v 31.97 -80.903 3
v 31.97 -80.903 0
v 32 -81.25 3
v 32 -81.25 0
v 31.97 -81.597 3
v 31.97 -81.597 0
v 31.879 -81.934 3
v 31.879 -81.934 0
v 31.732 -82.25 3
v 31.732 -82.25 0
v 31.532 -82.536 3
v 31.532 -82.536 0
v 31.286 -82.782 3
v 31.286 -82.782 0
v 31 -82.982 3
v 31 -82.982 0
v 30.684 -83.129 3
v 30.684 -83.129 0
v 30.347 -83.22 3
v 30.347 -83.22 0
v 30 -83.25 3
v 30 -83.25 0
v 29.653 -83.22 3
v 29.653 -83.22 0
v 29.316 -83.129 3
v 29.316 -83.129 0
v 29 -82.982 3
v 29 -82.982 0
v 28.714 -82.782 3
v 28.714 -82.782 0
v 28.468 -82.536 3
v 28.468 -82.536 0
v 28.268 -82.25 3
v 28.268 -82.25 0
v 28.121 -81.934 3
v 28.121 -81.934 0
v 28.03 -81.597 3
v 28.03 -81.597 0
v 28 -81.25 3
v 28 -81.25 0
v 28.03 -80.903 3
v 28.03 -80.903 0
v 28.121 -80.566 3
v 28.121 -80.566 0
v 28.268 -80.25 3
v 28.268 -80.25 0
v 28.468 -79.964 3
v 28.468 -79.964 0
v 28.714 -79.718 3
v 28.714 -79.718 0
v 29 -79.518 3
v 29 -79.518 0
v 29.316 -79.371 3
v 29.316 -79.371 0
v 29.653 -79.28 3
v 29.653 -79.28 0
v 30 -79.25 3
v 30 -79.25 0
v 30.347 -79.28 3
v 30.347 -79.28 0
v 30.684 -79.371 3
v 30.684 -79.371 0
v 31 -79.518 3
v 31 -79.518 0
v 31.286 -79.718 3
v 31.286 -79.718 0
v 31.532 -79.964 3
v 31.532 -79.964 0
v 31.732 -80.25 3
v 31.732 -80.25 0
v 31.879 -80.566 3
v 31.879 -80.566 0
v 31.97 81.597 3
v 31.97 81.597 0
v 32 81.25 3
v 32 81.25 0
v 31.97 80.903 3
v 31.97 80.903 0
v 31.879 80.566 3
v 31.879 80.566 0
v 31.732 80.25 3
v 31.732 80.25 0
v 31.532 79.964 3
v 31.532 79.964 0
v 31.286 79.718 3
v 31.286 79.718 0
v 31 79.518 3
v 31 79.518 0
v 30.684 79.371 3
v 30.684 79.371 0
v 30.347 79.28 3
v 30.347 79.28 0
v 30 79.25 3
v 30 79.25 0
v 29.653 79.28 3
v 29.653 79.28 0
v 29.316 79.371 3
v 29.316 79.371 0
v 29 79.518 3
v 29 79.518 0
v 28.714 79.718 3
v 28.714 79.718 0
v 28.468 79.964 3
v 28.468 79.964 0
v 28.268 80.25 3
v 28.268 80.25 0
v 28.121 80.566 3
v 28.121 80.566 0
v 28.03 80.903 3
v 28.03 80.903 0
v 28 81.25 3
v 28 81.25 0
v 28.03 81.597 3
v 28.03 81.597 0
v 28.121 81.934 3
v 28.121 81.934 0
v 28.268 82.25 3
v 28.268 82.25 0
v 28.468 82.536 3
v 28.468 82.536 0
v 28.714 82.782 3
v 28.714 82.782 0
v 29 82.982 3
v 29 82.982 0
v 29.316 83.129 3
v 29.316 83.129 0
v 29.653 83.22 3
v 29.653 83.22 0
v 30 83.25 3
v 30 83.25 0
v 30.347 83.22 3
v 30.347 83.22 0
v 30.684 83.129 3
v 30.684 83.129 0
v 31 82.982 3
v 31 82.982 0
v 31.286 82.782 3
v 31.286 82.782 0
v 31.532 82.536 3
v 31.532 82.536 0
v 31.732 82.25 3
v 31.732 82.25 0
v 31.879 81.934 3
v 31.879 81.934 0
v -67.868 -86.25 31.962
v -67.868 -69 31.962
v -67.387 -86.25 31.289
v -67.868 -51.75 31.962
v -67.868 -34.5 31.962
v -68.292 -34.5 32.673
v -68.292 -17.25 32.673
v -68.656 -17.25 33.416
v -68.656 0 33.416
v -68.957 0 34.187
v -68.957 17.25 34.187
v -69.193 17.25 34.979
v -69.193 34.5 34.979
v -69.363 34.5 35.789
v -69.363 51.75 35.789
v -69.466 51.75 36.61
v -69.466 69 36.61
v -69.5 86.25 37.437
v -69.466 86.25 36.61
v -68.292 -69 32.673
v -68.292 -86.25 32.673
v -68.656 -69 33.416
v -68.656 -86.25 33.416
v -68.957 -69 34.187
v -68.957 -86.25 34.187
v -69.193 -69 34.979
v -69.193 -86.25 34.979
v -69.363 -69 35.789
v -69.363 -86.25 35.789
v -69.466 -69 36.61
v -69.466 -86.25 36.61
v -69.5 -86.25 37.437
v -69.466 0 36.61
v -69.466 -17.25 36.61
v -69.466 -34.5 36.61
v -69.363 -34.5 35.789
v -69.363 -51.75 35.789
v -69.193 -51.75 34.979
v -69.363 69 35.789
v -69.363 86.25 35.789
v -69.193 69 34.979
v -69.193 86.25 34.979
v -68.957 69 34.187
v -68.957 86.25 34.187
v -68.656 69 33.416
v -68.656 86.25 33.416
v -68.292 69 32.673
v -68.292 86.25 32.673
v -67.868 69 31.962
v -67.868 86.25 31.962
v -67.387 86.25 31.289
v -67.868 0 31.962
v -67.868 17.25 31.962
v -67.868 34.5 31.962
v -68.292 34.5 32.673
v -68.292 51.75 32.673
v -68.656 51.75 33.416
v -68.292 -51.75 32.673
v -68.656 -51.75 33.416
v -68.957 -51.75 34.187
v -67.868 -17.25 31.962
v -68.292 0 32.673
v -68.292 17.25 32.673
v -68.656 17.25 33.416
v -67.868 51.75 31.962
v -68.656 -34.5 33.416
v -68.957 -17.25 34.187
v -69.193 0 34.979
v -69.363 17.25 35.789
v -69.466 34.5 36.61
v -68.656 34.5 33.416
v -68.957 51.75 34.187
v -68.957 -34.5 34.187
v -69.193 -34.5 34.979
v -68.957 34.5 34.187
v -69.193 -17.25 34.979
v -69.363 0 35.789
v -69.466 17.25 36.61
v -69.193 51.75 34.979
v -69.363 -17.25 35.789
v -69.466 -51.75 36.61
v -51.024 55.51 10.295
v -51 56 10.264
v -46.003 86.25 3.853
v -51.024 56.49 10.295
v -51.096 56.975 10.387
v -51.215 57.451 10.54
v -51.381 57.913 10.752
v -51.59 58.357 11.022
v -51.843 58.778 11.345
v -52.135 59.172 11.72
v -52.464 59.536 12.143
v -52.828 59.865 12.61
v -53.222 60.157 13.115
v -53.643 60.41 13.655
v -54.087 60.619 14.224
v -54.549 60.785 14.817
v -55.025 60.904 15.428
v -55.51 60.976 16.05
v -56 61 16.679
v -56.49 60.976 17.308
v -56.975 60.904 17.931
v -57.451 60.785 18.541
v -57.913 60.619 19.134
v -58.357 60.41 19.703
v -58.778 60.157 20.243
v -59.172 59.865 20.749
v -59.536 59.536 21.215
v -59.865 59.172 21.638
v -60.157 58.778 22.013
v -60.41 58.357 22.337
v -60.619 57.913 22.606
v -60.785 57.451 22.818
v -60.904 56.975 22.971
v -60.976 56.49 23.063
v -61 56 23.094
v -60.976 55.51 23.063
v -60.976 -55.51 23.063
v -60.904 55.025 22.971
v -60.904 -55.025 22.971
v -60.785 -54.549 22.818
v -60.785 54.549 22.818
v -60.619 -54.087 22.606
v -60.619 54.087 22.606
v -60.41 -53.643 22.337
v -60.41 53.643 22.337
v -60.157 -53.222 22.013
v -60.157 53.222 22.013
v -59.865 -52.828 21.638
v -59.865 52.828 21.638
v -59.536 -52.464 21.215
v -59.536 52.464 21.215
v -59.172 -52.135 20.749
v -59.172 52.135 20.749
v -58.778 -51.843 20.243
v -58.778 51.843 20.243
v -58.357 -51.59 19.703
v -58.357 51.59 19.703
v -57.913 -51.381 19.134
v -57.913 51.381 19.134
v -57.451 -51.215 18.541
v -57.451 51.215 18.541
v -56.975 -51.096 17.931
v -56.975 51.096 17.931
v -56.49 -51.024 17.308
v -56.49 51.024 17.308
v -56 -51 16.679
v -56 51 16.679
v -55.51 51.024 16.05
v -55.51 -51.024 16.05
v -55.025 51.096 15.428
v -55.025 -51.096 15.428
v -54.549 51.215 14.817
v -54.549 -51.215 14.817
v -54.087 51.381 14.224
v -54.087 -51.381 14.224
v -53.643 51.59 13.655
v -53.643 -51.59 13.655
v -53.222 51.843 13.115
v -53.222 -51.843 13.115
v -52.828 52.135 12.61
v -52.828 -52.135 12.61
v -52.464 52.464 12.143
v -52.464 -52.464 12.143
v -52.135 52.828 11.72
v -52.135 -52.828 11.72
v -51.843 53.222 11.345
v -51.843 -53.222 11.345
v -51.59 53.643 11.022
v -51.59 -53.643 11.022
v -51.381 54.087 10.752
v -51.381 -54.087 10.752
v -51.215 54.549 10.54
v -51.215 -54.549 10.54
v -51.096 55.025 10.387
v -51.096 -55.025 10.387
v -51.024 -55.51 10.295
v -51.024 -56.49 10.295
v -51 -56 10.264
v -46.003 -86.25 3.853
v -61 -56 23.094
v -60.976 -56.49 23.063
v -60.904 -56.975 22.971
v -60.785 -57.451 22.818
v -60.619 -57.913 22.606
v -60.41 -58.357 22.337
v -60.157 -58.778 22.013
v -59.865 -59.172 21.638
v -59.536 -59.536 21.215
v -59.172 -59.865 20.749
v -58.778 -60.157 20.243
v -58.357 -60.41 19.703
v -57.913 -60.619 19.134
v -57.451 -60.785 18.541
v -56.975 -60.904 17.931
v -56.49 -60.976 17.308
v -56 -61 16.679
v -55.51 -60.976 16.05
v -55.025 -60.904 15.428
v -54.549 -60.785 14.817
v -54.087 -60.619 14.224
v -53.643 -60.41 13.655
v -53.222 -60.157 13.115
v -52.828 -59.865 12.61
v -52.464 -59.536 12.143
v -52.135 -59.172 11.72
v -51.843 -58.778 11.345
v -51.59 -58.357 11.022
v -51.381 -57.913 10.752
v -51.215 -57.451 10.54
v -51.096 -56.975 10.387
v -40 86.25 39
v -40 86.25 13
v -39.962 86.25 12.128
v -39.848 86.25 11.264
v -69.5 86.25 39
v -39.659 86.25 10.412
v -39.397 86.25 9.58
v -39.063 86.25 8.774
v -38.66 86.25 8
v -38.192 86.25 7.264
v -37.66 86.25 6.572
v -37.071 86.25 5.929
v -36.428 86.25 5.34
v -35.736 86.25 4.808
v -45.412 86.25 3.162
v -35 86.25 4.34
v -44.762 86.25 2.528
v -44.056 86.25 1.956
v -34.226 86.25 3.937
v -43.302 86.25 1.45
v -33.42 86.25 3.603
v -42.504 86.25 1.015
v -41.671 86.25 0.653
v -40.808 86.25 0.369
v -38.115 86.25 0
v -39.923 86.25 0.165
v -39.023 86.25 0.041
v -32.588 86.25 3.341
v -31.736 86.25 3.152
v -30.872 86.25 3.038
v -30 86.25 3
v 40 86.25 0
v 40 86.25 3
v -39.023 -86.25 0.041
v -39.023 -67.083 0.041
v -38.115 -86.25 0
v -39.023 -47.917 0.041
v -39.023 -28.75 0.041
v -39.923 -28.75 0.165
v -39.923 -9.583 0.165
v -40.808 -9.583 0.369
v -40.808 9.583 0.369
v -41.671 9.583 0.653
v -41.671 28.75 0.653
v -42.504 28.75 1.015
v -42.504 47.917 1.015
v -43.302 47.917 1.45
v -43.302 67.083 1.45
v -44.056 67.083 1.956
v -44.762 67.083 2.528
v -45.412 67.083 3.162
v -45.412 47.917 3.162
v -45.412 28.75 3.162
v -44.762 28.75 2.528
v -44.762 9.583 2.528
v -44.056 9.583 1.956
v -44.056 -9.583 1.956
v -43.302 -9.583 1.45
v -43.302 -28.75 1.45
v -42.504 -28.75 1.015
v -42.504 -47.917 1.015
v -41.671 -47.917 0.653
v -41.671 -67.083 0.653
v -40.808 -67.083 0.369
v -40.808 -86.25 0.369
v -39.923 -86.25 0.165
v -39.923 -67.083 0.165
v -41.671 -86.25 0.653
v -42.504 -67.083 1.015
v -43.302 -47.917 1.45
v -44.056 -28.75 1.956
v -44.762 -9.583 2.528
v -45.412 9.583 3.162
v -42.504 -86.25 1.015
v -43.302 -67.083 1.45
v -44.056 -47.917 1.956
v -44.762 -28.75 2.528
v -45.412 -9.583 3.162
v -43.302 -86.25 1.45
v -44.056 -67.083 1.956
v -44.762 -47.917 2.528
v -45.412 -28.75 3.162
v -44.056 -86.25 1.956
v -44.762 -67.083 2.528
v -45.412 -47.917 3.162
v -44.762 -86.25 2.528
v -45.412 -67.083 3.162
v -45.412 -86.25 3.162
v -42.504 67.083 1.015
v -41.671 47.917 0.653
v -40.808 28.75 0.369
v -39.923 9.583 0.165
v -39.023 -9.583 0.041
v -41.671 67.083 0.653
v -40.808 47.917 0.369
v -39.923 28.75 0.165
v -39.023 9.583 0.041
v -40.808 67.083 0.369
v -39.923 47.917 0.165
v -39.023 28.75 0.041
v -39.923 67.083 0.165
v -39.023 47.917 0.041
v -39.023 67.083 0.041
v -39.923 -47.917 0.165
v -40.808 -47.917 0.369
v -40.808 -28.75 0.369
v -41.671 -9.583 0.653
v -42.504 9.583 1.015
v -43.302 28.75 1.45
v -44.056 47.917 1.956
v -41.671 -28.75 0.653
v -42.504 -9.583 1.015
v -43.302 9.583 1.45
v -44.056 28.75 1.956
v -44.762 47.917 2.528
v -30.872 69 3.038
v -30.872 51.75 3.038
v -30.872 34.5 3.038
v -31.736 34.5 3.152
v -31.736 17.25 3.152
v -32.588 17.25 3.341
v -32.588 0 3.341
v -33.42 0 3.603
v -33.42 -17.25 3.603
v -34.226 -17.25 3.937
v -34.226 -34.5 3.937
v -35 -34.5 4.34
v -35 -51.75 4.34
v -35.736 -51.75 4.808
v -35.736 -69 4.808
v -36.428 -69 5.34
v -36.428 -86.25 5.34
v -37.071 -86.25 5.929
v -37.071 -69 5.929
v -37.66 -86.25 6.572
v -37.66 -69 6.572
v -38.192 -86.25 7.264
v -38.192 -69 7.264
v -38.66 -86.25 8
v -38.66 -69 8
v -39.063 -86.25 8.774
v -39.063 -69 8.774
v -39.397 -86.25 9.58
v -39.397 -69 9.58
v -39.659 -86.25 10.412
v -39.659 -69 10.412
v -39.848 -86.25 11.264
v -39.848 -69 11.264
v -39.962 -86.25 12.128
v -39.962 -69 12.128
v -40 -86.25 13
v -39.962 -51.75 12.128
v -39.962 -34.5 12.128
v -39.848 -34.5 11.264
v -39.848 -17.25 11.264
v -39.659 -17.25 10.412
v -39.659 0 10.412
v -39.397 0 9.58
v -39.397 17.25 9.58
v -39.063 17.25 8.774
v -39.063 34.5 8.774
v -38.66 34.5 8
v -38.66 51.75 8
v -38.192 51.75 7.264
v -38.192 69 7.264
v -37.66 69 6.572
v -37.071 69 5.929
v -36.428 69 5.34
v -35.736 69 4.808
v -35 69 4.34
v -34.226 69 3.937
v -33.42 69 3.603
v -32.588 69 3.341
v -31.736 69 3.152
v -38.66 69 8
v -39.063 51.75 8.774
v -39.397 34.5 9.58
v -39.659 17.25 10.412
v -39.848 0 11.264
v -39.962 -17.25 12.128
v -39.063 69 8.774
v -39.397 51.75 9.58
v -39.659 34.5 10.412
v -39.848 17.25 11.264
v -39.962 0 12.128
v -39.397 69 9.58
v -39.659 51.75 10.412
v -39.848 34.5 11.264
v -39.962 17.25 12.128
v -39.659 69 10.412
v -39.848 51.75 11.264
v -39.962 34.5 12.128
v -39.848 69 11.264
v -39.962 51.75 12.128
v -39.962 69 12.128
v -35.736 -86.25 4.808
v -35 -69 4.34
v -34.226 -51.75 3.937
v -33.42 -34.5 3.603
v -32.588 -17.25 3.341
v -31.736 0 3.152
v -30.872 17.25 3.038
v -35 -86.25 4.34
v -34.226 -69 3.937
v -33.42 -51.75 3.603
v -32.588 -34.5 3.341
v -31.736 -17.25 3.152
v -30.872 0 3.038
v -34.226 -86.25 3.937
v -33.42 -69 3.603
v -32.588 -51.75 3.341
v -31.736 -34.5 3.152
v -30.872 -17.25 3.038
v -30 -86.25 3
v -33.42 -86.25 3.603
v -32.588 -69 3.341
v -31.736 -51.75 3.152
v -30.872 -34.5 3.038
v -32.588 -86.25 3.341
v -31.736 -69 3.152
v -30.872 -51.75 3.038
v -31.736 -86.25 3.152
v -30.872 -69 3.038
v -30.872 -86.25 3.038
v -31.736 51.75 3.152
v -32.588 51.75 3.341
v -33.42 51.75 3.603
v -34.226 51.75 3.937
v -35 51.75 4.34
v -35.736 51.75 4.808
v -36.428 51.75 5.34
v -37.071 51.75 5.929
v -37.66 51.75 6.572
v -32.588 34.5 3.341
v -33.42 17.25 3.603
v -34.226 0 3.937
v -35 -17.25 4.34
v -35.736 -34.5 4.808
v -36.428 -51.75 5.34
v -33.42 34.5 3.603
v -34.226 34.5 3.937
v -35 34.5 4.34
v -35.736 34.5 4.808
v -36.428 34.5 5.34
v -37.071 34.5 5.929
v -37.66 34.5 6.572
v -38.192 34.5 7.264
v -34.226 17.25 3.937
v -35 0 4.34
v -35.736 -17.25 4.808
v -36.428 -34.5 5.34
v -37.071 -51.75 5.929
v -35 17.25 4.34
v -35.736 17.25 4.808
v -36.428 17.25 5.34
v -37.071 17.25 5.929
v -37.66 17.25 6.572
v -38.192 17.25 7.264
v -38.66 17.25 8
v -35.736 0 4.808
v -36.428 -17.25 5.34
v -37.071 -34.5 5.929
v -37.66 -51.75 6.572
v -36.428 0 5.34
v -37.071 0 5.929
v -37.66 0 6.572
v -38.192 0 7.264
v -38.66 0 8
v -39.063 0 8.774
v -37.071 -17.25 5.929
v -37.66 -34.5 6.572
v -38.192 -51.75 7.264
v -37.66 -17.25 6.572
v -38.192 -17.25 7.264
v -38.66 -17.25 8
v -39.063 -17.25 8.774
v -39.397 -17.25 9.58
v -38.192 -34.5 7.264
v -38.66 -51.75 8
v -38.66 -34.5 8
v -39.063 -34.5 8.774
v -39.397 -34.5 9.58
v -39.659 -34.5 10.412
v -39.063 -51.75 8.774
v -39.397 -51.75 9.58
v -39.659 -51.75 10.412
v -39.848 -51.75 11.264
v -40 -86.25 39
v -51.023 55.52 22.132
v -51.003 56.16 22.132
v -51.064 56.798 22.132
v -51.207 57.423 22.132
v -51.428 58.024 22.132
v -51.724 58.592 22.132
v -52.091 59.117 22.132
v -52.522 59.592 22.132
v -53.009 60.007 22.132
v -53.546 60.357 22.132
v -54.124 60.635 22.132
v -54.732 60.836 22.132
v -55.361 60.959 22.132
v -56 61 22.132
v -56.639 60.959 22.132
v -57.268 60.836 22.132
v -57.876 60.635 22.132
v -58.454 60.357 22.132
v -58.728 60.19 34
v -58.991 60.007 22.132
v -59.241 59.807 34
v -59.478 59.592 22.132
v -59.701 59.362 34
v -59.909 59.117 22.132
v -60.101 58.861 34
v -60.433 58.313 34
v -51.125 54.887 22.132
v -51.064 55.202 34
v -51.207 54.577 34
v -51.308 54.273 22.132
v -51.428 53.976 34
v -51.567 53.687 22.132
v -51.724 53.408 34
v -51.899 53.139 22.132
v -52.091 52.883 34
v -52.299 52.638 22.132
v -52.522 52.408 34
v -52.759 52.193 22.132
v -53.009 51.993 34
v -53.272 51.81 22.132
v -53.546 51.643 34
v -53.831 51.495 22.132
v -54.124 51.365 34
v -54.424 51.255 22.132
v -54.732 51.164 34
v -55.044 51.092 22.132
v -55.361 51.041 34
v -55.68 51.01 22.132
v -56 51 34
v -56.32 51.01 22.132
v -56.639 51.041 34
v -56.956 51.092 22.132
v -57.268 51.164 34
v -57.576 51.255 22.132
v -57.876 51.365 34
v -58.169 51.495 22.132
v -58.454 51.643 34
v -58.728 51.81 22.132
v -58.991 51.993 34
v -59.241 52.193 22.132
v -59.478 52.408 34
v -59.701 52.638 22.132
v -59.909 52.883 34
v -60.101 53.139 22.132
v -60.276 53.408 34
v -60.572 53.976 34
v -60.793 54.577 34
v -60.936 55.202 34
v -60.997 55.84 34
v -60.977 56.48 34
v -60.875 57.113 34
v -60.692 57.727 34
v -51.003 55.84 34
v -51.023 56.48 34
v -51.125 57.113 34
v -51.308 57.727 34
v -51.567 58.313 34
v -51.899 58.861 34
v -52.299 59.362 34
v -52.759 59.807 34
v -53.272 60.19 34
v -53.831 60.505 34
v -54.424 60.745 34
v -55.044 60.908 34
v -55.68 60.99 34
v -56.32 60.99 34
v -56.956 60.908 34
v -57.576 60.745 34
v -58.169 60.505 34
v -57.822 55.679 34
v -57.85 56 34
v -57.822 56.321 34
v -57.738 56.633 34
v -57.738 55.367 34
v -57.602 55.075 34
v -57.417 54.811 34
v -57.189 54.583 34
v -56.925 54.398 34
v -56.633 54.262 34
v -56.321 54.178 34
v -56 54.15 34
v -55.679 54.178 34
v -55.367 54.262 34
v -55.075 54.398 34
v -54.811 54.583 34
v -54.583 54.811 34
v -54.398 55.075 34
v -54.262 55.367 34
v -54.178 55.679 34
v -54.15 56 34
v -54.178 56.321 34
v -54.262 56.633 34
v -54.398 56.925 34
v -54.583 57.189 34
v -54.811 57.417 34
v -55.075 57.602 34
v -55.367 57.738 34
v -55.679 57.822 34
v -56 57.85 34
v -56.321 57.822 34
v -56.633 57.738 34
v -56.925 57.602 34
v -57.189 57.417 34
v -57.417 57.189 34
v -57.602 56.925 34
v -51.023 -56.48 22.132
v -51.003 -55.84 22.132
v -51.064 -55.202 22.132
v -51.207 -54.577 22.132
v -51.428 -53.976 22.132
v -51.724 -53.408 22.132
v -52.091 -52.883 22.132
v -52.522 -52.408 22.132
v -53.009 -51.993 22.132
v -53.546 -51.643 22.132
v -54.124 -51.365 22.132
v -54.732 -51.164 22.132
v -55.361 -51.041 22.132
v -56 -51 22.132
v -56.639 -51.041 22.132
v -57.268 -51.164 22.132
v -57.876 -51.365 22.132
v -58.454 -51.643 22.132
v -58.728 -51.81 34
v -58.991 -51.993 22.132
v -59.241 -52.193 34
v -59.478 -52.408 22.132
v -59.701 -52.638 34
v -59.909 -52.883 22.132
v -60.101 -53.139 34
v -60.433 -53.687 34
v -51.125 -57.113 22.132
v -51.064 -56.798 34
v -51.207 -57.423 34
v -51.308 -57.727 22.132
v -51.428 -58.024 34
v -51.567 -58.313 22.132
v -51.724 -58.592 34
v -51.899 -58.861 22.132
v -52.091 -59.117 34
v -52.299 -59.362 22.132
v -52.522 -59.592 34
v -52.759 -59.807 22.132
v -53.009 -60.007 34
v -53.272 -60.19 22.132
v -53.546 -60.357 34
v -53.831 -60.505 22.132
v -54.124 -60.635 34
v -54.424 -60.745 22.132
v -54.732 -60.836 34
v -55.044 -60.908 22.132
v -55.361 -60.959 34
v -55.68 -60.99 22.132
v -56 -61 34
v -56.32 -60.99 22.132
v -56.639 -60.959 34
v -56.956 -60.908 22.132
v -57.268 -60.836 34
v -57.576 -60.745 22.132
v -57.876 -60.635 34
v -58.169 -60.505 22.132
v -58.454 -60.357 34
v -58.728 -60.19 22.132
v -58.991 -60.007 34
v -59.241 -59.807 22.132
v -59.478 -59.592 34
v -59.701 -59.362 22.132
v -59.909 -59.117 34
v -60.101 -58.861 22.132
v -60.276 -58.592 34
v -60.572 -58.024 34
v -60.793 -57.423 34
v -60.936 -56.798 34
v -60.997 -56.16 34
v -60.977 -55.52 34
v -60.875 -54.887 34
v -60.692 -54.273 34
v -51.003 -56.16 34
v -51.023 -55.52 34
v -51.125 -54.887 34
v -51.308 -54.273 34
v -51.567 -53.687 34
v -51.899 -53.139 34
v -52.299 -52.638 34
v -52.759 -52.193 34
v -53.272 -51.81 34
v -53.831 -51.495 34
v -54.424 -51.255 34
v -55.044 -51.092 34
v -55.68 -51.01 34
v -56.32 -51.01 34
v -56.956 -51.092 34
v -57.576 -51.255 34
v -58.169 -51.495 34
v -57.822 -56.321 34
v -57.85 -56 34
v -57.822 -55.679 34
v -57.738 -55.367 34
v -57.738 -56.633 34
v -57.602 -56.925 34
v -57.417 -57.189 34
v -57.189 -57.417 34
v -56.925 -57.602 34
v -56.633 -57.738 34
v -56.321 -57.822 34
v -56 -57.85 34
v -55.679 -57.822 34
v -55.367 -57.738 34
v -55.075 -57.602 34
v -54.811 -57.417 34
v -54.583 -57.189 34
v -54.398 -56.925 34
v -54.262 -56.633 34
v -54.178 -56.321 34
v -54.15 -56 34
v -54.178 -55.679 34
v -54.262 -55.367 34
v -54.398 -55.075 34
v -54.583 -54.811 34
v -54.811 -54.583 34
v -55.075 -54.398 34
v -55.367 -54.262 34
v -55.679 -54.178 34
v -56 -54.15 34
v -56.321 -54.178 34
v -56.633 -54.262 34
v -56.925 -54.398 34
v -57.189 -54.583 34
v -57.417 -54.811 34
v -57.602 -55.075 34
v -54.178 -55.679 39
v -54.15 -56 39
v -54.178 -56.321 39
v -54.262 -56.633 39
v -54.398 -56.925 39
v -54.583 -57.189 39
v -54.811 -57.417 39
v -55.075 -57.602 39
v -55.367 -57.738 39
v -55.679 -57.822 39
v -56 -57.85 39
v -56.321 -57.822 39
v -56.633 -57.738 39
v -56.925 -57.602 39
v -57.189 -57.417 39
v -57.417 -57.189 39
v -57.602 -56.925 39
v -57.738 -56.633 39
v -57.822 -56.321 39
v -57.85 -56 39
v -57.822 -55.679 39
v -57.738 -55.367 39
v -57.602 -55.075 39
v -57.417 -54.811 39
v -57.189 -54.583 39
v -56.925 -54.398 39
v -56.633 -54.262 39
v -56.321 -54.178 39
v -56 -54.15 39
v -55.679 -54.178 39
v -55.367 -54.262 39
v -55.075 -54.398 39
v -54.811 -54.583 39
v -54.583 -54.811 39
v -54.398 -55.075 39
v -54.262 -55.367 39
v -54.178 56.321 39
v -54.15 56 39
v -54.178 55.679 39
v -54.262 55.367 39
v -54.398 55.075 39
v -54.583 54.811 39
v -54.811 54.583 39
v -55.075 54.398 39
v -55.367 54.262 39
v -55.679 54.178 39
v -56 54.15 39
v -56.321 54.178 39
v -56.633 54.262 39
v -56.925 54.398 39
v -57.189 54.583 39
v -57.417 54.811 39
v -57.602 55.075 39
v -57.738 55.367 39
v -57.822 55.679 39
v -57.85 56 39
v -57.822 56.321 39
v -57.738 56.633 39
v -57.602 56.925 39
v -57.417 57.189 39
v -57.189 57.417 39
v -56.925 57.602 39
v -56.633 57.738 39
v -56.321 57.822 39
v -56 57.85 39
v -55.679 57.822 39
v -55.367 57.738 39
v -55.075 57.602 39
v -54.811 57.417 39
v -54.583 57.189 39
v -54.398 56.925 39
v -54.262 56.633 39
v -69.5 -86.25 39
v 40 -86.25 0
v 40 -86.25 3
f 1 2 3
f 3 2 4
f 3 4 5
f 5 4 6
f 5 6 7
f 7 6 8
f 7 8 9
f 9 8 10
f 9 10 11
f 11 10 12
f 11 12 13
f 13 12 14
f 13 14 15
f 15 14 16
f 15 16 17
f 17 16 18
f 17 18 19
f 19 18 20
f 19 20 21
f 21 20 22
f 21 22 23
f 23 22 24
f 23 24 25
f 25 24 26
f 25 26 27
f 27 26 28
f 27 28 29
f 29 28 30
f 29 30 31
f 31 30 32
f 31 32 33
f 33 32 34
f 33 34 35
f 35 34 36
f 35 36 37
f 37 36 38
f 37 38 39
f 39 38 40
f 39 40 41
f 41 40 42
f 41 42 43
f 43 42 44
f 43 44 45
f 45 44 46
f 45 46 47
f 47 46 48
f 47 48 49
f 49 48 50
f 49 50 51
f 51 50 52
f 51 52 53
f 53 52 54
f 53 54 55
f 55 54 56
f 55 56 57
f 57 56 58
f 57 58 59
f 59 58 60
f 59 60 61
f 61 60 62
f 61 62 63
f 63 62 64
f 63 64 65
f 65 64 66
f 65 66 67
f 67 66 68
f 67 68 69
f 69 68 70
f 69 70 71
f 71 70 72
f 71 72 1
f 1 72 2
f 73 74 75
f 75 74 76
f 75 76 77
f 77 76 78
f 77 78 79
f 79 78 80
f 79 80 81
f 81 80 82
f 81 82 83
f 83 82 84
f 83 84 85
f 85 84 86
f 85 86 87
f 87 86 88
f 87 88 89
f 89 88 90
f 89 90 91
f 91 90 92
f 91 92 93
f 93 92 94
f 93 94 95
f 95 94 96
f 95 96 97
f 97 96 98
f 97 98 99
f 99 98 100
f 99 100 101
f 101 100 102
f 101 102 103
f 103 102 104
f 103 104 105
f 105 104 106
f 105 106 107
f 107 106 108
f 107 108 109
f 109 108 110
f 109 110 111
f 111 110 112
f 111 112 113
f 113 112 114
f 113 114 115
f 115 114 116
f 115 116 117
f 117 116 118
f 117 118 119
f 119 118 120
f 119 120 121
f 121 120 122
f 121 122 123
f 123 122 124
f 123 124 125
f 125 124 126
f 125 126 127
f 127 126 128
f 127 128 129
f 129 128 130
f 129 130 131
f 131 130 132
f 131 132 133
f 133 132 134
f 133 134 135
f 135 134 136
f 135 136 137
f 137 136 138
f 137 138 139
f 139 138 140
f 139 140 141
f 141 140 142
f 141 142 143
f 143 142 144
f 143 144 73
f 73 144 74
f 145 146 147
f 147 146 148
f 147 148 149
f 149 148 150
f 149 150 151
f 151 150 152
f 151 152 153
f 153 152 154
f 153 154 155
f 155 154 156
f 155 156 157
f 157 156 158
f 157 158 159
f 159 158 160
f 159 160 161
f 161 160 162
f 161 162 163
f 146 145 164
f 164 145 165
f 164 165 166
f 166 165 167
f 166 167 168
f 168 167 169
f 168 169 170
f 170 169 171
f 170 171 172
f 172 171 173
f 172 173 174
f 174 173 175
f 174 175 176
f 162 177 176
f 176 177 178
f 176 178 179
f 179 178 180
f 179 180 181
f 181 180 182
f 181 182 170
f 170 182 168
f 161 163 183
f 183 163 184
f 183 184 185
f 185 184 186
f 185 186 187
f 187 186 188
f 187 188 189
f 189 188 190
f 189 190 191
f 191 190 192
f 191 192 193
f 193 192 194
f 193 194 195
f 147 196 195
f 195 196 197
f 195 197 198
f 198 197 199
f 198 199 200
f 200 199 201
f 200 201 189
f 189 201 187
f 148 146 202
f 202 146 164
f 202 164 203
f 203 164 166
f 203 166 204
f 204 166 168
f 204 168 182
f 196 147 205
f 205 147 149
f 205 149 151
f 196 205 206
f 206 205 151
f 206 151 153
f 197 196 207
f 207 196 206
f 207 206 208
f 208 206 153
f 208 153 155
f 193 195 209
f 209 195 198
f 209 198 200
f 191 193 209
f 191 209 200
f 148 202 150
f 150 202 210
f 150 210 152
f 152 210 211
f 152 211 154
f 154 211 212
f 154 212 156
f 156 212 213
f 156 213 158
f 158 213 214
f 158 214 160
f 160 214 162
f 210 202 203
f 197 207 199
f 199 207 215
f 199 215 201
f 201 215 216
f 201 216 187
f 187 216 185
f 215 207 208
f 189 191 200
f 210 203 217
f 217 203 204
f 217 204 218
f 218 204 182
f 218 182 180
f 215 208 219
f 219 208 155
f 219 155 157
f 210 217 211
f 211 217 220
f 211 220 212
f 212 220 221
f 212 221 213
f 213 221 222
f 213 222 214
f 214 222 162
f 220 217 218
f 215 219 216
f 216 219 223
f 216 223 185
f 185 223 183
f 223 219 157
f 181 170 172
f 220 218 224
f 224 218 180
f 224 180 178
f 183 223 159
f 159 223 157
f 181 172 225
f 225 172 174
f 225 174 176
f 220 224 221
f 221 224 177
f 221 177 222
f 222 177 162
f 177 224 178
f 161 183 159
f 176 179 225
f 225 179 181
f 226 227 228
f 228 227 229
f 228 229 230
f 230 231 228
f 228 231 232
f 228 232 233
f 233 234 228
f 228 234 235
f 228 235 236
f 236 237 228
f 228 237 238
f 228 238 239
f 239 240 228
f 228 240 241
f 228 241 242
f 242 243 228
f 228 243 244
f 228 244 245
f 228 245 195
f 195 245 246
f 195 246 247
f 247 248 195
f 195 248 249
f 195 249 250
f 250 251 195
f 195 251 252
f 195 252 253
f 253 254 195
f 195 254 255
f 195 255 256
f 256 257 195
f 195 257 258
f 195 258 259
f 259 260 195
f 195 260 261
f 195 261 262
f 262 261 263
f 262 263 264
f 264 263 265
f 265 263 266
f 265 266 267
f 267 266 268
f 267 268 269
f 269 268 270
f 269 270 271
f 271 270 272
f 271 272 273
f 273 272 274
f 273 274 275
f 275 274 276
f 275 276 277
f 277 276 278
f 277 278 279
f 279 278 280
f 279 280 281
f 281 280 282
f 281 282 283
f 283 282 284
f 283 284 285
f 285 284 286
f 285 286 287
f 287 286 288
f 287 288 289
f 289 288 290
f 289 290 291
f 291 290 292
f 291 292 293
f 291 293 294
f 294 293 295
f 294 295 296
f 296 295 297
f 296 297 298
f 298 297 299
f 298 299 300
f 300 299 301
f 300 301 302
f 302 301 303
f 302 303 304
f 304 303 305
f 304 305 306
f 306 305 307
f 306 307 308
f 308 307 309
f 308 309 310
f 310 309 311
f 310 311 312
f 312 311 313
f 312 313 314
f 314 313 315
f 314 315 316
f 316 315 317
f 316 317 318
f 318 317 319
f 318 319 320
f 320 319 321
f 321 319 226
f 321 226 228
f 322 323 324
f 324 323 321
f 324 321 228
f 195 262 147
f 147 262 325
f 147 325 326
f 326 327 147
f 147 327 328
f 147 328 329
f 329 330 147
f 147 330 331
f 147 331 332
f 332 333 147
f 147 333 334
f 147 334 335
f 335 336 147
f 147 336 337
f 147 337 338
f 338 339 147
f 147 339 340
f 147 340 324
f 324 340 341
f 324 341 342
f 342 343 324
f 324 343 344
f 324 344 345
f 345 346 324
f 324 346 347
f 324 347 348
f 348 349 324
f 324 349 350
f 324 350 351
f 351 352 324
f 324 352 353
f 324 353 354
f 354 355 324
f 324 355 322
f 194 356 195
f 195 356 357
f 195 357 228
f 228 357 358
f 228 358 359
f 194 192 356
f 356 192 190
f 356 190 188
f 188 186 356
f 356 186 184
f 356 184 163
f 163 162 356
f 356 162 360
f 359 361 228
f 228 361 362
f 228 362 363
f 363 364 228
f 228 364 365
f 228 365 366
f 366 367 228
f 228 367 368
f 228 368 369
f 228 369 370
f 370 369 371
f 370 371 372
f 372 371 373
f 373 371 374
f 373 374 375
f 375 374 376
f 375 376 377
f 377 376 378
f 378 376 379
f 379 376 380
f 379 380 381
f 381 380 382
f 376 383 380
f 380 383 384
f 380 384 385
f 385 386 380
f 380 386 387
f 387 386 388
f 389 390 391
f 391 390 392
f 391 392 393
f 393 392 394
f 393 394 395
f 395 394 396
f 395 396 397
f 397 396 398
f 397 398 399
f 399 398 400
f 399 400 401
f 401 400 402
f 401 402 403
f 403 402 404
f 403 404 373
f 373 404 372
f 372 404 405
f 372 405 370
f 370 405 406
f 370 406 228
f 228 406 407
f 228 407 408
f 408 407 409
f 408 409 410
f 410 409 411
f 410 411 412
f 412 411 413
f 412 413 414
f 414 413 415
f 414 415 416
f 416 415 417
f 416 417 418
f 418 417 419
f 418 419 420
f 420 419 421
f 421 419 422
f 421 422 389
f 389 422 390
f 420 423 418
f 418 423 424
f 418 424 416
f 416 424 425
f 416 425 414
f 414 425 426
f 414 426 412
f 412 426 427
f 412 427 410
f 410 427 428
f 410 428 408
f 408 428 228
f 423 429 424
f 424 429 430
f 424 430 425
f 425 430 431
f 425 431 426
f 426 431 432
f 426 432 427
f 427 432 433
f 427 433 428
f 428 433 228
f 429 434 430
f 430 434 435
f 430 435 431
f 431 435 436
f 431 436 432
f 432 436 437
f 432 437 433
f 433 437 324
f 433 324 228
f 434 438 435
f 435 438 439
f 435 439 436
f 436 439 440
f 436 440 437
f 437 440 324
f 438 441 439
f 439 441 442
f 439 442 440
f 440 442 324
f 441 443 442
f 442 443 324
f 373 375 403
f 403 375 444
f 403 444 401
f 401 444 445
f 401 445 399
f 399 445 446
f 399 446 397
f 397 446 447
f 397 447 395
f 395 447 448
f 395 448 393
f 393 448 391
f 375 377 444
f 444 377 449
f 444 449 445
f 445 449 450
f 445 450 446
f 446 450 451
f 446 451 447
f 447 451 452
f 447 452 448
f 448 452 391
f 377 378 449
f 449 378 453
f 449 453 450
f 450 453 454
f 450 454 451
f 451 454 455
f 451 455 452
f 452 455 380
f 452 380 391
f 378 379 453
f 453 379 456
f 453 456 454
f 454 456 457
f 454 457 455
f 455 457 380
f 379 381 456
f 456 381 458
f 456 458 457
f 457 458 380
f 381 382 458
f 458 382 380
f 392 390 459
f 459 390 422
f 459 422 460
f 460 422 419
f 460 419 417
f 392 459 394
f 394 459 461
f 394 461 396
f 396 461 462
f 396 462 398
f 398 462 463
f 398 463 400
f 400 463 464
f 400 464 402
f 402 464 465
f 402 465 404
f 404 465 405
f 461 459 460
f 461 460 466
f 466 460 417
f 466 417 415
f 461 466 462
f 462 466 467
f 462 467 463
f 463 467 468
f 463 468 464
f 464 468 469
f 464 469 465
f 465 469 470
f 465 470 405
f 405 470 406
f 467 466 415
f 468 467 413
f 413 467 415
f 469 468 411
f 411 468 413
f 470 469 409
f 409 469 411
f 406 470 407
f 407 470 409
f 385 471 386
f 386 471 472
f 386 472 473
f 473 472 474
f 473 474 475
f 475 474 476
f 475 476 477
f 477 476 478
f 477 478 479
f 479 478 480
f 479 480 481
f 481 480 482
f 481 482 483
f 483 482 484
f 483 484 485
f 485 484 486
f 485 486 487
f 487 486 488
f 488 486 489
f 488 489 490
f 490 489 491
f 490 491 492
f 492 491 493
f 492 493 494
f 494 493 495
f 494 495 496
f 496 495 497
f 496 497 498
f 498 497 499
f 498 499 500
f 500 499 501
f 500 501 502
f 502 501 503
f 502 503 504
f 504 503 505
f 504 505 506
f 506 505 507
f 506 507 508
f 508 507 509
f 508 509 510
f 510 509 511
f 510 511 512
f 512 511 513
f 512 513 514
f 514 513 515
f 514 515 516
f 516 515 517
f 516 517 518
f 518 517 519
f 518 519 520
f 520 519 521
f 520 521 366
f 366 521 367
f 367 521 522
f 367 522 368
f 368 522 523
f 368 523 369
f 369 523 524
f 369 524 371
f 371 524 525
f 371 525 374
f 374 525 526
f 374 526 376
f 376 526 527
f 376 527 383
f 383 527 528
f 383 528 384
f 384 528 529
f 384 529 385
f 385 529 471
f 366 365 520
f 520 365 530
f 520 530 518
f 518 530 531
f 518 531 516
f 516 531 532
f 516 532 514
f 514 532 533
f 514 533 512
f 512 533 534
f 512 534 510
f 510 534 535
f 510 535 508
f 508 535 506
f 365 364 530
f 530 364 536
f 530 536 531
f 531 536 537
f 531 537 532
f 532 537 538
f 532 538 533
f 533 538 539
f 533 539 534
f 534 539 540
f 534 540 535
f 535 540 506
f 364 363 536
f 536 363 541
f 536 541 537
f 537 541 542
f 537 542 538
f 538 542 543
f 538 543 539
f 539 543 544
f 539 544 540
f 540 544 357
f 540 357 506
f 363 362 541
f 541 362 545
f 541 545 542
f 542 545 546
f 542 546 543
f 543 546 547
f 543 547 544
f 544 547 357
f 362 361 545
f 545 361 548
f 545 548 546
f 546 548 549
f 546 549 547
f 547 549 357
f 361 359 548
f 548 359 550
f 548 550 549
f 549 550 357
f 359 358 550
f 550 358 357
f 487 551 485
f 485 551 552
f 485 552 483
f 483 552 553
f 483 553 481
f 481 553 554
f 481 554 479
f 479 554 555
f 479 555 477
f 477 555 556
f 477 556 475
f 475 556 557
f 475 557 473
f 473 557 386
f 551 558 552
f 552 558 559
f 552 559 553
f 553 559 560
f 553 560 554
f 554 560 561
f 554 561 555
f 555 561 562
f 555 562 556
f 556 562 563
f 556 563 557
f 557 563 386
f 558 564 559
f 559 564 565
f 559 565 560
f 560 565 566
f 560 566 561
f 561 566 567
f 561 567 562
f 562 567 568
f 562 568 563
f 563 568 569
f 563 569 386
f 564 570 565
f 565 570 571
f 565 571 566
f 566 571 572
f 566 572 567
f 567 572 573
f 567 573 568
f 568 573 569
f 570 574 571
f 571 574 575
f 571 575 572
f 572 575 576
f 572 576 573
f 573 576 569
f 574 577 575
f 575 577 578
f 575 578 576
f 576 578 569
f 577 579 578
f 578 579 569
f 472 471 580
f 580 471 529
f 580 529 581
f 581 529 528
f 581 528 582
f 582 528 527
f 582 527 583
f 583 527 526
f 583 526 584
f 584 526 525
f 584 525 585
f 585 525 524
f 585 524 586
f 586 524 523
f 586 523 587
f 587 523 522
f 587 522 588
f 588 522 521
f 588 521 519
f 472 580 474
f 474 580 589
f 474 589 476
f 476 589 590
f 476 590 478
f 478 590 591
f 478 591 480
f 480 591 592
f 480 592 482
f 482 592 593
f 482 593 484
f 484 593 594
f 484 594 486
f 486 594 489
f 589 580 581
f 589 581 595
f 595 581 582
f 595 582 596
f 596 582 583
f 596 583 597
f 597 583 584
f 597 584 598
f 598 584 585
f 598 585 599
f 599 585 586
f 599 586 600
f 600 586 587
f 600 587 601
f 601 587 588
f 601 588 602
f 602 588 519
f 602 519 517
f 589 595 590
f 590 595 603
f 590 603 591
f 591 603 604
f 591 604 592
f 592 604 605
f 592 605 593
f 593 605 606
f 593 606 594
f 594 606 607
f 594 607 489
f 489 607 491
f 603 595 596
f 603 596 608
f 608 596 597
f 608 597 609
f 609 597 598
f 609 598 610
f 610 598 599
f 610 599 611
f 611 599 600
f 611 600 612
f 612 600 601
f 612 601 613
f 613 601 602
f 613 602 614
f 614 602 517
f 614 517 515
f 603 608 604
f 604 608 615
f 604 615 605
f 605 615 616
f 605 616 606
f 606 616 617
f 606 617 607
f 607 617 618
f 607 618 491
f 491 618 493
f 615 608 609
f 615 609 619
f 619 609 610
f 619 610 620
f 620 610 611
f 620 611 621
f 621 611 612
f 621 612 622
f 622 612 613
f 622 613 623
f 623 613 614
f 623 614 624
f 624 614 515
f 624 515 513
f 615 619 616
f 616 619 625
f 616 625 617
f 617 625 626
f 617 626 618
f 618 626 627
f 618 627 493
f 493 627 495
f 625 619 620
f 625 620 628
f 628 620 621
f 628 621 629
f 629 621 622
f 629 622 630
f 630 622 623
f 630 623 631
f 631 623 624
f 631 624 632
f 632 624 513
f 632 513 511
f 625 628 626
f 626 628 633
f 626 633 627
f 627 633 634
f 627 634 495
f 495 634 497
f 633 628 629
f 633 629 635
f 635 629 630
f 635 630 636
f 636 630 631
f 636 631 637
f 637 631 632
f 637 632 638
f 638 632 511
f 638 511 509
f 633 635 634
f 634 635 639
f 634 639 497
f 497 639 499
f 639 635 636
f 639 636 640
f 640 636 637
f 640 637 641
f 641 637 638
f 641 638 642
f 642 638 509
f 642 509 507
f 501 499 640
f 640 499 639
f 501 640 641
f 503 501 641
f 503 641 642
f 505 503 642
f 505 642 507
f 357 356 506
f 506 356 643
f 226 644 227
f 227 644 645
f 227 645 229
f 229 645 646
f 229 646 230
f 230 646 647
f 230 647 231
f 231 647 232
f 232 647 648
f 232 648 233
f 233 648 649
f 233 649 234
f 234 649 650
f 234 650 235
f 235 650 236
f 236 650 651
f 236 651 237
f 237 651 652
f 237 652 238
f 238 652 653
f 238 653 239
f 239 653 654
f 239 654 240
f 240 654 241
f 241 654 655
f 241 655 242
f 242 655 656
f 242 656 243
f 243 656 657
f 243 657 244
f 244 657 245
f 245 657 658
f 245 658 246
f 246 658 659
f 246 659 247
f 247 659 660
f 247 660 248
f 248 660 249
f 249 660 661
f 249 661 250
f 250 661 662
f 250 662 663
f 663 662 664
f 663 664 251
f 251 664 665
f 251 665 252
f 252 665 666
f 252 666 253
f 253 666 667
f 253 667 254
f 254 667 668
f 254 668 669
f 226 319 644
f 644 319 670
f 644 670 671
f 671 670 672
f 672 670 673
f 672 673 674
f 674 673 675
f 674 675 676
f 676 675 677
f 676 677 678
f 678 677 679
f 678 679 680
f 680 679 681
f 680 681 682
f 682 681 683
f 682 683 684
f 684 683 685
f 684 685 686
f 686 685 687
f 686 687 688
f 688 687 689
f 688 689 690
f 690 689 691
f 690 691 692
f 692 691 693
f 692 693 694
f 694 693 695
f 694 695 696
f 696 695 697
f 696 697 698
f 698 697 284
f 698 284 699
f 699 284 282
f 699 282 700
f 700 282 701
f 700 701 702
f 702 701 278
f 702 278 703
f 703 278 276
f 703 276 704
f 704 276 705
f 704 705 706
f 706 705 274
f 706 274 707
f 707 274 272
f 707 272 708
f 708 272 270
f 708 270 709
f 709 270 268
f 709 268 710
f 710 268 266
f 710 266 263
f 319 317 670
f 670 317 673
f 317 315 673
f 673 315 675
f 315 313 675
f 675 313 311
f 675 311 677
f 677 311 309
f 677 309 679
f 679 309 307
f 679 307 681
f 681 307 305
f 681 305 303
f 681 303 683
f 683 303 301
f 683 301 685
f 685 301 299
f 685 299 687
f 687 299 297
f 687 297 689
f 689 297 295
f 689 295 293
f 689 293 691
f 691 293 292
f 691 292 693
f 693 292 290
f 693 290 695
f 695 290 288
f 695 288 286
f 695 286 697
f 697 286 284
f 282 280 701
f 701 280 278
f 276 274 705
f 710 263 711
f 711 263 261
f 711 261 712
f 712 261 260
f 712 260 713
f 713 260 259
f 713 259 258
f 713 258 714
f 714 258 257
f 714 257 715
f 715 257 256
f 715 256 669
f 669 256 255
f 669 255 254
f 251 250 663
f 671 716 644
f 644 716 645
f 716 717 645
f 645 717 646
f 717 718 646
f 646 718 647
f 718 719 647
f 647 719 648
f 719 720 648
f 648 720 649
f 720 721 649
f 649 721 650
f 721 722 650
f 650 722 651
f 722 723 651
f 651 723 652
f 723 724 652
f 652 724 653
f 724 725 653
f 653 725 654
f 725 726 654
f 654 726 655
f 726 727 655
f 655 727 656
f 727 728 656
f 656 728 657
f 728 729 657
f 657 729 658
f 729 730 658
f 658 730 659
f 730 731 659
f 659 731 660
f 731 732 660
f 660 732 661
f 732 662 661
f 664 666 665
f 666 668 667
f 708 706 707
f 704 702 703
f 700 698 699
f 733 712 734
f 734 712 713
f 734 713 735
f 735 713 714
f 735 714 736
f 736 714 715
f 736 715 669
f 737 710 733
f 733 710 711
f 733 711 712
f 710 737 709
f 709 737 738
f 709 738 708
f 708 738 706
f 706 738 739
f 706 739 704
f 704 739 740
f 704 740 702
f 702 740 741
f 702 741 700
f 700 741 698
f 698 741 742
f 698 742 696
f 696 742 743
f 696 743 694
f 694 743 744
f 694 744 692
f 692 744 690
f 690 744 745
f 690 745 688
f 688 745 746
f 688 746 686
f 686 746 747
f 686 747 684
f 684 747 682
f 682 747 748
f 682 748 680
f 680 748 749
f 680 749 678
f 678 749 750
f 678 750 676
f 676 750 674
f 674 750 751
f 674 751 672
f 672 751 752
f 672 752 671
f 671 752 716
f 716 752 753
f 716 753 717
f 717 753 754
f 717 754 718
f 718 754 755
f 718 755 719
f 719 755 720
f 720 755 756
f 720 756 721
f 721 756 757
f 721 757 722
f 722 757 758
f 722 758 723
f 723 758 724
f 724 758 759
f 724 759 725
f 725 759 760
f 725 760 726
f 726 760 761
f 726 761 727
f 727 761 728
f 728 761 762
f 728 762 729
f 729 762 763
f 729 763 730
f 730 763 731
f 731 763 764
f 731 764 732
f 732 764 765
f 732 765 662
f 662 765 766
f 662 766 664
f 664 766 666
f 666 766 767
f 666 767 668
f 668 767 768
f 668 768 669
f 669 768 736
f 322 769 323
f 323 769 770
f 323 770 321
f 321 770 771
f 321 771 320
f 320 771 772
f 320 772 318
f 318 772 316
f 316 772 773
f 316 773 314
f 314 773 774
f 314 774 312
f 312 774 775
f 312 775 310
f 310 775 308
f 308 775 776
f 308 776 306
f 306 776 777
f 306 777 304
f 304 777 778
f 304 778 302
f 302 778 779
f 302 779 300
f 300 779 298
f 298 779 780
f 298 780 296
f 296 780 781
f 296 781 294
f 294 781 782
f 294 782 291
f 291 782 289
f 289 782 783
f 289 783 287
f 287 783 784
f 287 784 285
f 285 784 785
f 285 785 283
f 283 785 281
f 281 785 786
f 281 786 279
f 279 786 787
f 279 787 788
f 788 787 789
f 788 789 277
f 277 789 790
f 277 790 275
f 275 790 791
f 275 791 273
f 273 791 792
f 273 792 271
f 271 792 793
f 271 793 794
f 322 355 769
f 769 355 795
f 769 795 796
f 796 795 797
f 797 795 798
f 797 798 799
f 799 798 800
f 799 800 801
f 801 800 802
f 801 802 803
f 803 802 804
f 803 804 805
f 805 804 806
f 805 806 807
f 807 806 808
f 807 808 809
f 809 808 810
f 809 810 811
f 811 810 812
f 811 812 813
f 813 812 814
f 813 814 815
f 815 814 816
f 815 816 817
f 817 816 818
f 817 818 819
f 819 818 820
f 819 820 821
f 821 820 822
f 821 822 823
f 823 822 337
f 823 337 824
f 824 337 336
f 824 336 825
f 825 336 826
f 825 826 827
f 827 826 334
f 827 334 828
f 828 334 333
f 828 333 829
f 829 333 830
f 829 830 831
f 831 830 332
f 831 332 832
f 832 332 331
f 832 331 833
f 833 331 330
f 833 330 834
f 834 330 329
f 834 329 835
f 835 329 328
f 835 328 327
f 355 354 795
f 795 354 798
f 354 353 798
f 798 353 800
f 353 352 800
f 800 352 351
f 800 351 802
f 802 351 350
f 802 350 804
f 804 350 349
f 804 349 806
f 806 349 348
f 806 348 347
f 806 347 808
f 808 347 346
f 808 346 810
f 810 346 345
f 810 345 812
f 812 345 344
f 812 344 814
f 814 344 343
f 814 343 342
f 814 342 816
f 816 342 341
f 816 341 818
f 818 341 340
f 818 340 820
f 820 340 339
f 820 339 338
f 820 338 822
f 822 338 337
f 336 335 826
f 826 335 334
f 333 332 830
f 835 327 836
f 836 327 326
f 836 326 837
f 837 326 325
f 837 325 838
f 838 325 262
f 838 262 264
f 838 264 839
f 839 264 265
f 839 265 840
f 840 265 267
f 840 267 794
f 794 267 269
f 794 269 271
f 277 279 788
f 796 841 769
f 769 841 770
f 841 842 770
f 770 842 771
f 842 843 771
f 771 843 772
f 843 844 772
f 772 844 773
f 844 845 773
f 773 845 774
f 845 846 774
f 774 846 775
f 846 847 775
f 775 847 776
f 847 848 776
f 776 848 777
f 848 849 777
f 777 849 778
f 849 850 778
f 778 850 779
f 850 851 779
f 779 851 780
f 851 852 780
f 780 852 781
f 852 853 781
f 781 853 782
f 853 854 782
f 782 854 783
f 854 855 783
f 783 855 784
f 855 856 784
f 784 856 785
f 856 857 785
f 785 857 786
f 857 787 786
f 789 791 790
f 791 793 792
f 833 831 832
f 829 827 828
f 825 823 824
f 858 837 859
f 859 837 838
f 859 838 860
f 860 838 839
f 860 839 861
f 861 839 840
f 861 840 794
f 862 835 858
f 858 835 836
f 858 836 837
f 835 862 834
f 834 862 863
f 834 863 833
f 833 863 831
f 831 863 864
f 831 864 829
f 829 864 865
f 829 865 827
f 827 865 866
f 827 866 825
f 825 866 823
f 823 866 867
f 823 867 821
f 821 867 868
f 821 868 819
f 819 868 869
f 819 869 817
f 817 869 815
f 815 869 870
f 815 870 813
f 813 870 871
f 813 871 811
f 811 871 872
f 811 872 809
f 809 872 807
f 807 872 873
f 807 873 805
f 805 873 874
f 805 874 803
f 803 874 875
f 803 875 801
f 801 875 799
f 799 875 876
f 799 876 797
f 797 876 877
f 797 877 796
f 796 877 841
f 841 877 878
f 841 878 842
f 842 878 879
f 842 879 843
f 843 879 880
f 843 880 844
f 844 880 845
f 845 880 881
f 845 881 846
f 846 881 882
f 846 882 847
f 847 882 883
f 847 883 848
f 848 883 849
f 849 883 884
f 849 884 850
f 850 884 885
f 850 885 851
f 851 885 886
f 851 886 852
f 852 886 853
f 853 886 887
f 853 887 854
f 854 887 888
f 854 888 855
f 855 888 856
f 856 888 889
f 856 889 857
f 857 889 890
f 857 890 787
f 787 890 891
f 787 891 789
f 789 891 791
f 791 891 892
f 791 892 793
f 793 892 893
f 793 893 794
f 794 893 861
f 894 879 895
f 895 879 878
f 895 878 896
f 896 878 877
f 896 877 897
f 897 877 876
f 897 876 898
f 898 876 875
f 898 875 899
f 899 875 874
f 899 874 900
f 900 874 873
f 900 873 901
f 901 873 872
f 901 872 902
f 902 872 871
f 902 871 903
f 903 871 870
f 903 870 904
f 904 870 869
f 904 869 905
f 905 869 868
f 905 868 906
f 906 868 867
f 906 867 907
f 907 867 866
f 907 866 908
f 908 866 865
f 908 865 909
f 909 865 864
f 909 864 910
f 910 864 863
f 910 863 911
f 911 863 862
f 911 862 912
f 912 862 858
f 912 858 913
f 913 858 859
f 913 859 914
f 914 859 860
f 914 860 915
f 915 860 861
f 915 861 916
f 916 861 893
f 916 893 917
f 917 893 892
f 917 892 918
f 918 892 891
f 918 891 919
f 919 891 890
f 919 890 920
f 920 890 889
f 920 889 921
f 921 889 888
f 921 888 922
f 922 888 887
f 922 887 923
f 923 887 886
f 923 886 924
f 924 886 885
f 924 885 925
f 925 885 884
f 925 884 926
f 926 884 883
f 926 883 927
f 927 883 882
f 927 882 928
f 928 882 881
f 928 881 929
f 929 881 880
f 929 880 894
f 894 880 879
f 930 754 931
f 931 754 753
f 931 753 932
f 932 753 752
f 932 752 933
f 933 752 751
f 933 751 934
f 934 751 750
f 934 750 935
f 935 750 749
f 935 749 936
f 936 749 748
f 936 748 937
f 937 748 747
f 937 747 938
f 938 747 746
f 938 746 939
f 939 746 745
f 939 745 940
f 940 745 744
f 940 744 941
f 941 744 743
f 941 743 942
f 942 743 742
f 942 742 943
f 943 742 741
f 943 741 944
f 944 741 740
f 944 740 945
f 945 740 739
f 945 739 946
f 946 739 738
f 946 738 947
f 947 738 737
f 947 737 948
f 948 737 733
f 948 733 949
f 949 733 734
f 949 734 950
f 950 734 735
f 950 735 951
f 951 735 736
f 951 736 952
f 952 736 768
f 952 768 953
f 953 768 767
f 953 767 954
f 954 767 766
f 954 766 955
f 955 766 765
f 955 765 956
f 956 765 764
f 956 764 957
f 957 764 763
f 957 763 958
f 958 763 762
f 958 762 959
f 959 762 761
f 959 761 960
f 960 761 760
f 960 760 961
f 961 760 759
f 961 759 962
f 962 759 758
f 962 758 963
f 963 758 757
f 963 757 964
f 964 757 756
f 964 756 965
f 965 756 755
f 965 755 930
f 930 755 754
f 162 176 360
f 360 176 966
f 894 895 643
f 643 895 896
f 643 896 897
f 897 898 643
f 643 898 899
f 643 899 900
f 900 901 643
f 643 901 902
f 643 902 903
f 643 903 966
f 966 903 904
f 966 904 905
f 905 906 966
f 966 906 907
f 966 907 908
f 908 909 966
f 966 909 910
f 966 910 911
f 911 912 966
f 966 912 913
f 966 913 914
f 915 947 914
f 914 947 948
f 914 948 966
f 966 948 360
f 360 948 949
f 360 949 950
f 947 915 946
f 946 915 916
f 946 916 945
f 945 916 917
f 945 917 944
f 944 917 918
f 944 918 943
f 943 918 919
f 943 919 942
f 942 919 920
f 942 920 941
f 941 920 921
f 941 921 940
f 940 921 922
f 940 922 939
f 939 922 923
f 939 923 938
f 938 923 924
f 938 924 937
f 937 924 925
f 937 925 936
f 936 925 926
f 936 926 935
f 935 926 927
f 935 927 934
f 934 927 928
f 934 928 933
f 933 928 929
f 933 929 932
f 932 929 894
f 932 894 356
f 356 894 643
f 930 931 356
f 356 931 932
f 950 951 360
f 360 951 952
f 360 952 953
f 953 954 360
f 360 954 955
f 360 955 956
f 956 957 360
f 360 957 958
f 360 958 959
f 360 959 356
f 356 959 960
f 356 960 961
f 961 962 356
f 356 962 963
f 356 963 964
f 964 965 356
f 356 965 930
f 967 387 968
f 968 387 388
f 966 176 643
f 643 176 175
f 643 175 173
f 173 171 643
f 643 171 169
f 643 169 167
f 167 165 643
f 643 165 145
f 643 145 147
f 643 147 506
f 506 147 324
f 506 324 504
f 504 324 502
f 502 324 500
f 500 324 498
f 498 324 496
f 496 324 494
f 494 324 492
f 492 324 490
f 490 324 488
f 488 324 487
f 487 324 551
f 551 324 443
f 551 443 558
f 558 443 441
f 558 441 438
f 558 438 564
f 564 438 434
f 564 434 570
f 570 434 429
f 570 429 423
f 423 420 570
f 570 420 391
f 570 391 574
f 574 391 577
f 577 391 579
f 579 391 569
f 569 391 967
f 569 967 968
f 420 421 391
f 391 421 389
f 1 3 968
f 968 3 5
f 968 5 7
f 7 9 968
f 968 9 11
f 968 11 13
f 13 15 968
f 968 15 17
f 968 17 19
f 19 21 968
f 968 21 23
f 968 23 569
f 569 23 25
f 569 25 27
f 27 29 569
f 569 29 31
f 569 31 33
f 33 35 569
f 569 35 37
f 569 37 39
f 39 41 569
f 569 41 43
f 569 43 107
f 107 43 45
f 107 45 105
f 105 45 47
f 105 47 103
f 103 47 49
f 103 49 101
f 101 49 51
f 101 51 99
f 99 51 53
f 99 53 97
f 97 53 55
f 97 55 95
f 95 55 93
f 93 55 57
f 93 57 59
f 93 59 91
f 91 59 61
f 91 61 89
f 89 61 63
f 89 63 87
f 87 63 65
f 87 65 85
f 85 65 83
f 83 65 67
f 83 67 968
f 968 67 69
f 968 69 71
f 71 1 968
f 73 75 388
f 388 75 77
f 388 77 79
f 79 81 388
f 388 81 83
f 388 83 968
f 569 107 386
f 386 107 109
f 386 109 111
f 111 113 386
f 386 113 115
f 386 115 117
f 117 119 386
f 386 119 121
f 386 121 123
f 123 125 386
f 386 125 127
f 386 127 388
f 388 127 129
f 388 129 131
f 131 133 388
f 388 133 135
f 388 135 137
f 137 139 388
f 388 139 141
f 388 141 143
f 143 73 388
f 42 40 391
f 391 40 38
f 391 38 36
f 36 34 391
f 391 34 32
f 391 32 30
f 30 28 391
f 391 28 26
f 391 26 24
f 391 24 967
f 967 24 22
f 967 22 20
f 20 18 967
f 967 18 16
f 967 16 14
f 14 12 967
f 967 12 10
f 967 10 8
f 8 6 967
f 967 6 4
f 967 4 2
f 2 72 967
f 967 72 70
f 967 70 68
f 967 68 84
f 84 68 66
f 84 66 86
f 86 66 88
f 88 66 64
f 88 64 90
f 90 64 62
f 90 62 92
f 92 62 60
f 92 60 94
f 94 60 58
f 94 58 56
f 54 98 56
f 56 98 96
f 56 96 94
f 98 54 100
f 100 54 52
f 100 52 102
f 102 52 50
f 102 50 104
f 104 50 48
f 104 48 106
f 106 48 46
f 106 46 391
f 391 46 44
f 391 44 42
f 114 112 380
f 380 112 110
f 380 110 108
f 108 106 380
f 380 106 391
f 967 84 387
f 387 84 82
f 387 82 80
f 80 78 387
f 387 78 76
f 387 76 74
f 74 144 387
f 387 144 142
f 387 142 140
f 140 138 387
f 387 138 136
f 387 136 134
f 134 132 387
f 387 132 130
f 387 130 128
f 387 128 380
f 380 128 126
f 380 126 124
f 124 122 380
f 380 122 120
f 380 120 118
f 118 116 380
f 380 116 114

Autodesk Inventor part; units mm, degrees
ref_plane "YZ Plane" through (0, 0, 0) normal (1, 0, 0) x (0, 1, 0)
ref_plane "XZ Plane" through (0, 0, 0) normal (0, 1, 0) x (-1, 0, 0)
sketch "Эскиз1" plane through (0, 0, 0) normal (0, 0, 1) x (1, 0, 0)
  line L0 (40, -86.25) -> (-40, -86.25)
  line L1 (-40, -86.25) -> (-40, 86.25)
  line L2 (-40, 86.25) -> (40, 86.25)
  line L3 (40, 86.25) -> (40, -86.25)
  line L4 (40, -86.25) -> (-40, 86.25) construction
  line L5 (-40, -86.25) -> (40, 86.25) construction
  point P0 (0, 0)
  dimension "d0" = 80
  dimension "d1" = 172.5
extrude "Выдавливание1" add sketch "Эскиз1" along normal blind 3
sketch "Эскиз2" plane through (-40, -86.25, 0) normal (-1, 0, 0) x (0, 0, 1)
  line L0 (0, 172.5) -> (39, 172.5)
  line L1 (39, 172.5) -> (39, 0)
  line L2 (39, 0) -> (0, 0)
  line L3 (0, 0) -> (0, 172.5)
  dimension "d4" = 39
extrude "Выдавливание2" add sketch "Эскиз2" along normal blind 3
sketch "Эскиз3" plane through (-43, -86.25, 0) normal (-1, 0, 0) x (0, 0, 1)
  line L0 (3, 0) -> (39, 0) projected
  line L1 (39, 172.5) -> (3, 172.5) projected
  line L2 (39, 0) -> (34, 0)
  line L3 (34, 0) -> (34, 172.5)
  line L4 (34, 172.5) -> (39, 172.5)
  line L5 (39, 172.5) -> (39, 0)
  point P0 (0, 86.25)
  point P1 (34, 0)
  dimension "d7" = 5
extrude "Выдавливание3" add sketch "Эскиз3" along normal blind 26.5
sketch "Эскиз4" plane through (-43, -86.25, 34) normal (0, 0, -1) x (-1, 0, 0)
  point P0 (-43, 86.25)
sketch "Эскиз5" plane through (-43, -86.25, 34) normal (0, 0, -1) x (-1, 0, 0)
  circle A0 centre (13, 30.25) radius 1.85 projected
  circle A1 centre (13, 142.25) radius 1.85 projected
  point P0 (-43, 86.25)
extrude "Выдавливание4" cut sketch "Эскиз5" against normal blind 26.5
sketch "Эскиз6" plane through (40, 86.25, 3) normal (0, 1, 0) x (1, 0, 0)
  line L0 (0, 3) -> (-83, 3) projected
  line L1 (-83, -31) -> (-109.5, -31) projected
  line L2 (-83, 3) -> (-109.5, -31)
  line L3 (-83, 3) -> (-83, -31) projected
  line L4 (-83, 3) -> (-83, -31)
  line L5 (-80, 0) -> (-80, -36) projected
  point P0 (-40, 3)
extrude "Выдавливание5" add sketch "Эскиз6" against normal up to surface (172.5 mm away)
ref_plane "РабПлоскость1" through (-69.5, 86.25, 34) normal (0, 0, -1) x (0, -1, 0)
sketch "Эскиз7" plane through (-69.5, 86.25, 34) normal (0, 0, -1) x (0, -1, 0)
  circle A0 centre (142.25, -13.5) radius 1.85 projected
  circle A1 centre (30.25, -13.5) radius 1.85 projected
  circle A2 centre (30.25, -13.5) radius 1.85 projected
  circle A3 centre (30.25, -13.5) radius 5
  circle A4 centre (142.25, -13.5) radius 1.85 projected
  circle A5 centre (142.25, -13.5) radius 5
  point P0 (86.25, -69.5)
  dimension "d15" = 10
  dimension "d16" = 10
extrude "Выдавливание6" cut sketch "Эскиз7" along normal blind 36.75 contours A0 | A1 | A3 | A5
fillet "Сопряжение1" radius 10 2 edges at (-40, 0, 3) (-43, 0, 0)
fillet "Сопряжение2" radius 10 1 edges at (-69.5, 0, 34)
sketch "Эскиз8" plane through (0, 0, 0) normal (0, 0, -1) x (-1, 0, 0)
  line L0 (-35, 76.25) -> (40, 76.25) projected
  line L1 (-35, -76.25) -> (-35, 76.25) projected
  line L2 (40, -76.25) -> (-35, -76.25) projected
  line L3 (-40, -86.25) -> (38.1155, -86.25) projected
  line L4 (-40, -86.25) -> (-40, 86.25) projected
  line L5 (-40, 86.25) -> (38.1155, 86.25) projected
  circle A0 centre (-30, 81.25) radius 2
  circle A1 centre (-30, -81.25) radius 2
  point P0 (0, 0)
  dimension "d21" = 4
  dimension "d22" = 5
  dimension "d23" = 10
  dimension "d24" = 10
  dimension "d25" = 4
  dimension "d26" = 5
  dimension "d27" = 10
extrude "Выдавливание7" cut sketch "Эскиз8" against normal blind 10
equation "\"d16\" = d15"
properties part number "000.003.002 - Крышка"
